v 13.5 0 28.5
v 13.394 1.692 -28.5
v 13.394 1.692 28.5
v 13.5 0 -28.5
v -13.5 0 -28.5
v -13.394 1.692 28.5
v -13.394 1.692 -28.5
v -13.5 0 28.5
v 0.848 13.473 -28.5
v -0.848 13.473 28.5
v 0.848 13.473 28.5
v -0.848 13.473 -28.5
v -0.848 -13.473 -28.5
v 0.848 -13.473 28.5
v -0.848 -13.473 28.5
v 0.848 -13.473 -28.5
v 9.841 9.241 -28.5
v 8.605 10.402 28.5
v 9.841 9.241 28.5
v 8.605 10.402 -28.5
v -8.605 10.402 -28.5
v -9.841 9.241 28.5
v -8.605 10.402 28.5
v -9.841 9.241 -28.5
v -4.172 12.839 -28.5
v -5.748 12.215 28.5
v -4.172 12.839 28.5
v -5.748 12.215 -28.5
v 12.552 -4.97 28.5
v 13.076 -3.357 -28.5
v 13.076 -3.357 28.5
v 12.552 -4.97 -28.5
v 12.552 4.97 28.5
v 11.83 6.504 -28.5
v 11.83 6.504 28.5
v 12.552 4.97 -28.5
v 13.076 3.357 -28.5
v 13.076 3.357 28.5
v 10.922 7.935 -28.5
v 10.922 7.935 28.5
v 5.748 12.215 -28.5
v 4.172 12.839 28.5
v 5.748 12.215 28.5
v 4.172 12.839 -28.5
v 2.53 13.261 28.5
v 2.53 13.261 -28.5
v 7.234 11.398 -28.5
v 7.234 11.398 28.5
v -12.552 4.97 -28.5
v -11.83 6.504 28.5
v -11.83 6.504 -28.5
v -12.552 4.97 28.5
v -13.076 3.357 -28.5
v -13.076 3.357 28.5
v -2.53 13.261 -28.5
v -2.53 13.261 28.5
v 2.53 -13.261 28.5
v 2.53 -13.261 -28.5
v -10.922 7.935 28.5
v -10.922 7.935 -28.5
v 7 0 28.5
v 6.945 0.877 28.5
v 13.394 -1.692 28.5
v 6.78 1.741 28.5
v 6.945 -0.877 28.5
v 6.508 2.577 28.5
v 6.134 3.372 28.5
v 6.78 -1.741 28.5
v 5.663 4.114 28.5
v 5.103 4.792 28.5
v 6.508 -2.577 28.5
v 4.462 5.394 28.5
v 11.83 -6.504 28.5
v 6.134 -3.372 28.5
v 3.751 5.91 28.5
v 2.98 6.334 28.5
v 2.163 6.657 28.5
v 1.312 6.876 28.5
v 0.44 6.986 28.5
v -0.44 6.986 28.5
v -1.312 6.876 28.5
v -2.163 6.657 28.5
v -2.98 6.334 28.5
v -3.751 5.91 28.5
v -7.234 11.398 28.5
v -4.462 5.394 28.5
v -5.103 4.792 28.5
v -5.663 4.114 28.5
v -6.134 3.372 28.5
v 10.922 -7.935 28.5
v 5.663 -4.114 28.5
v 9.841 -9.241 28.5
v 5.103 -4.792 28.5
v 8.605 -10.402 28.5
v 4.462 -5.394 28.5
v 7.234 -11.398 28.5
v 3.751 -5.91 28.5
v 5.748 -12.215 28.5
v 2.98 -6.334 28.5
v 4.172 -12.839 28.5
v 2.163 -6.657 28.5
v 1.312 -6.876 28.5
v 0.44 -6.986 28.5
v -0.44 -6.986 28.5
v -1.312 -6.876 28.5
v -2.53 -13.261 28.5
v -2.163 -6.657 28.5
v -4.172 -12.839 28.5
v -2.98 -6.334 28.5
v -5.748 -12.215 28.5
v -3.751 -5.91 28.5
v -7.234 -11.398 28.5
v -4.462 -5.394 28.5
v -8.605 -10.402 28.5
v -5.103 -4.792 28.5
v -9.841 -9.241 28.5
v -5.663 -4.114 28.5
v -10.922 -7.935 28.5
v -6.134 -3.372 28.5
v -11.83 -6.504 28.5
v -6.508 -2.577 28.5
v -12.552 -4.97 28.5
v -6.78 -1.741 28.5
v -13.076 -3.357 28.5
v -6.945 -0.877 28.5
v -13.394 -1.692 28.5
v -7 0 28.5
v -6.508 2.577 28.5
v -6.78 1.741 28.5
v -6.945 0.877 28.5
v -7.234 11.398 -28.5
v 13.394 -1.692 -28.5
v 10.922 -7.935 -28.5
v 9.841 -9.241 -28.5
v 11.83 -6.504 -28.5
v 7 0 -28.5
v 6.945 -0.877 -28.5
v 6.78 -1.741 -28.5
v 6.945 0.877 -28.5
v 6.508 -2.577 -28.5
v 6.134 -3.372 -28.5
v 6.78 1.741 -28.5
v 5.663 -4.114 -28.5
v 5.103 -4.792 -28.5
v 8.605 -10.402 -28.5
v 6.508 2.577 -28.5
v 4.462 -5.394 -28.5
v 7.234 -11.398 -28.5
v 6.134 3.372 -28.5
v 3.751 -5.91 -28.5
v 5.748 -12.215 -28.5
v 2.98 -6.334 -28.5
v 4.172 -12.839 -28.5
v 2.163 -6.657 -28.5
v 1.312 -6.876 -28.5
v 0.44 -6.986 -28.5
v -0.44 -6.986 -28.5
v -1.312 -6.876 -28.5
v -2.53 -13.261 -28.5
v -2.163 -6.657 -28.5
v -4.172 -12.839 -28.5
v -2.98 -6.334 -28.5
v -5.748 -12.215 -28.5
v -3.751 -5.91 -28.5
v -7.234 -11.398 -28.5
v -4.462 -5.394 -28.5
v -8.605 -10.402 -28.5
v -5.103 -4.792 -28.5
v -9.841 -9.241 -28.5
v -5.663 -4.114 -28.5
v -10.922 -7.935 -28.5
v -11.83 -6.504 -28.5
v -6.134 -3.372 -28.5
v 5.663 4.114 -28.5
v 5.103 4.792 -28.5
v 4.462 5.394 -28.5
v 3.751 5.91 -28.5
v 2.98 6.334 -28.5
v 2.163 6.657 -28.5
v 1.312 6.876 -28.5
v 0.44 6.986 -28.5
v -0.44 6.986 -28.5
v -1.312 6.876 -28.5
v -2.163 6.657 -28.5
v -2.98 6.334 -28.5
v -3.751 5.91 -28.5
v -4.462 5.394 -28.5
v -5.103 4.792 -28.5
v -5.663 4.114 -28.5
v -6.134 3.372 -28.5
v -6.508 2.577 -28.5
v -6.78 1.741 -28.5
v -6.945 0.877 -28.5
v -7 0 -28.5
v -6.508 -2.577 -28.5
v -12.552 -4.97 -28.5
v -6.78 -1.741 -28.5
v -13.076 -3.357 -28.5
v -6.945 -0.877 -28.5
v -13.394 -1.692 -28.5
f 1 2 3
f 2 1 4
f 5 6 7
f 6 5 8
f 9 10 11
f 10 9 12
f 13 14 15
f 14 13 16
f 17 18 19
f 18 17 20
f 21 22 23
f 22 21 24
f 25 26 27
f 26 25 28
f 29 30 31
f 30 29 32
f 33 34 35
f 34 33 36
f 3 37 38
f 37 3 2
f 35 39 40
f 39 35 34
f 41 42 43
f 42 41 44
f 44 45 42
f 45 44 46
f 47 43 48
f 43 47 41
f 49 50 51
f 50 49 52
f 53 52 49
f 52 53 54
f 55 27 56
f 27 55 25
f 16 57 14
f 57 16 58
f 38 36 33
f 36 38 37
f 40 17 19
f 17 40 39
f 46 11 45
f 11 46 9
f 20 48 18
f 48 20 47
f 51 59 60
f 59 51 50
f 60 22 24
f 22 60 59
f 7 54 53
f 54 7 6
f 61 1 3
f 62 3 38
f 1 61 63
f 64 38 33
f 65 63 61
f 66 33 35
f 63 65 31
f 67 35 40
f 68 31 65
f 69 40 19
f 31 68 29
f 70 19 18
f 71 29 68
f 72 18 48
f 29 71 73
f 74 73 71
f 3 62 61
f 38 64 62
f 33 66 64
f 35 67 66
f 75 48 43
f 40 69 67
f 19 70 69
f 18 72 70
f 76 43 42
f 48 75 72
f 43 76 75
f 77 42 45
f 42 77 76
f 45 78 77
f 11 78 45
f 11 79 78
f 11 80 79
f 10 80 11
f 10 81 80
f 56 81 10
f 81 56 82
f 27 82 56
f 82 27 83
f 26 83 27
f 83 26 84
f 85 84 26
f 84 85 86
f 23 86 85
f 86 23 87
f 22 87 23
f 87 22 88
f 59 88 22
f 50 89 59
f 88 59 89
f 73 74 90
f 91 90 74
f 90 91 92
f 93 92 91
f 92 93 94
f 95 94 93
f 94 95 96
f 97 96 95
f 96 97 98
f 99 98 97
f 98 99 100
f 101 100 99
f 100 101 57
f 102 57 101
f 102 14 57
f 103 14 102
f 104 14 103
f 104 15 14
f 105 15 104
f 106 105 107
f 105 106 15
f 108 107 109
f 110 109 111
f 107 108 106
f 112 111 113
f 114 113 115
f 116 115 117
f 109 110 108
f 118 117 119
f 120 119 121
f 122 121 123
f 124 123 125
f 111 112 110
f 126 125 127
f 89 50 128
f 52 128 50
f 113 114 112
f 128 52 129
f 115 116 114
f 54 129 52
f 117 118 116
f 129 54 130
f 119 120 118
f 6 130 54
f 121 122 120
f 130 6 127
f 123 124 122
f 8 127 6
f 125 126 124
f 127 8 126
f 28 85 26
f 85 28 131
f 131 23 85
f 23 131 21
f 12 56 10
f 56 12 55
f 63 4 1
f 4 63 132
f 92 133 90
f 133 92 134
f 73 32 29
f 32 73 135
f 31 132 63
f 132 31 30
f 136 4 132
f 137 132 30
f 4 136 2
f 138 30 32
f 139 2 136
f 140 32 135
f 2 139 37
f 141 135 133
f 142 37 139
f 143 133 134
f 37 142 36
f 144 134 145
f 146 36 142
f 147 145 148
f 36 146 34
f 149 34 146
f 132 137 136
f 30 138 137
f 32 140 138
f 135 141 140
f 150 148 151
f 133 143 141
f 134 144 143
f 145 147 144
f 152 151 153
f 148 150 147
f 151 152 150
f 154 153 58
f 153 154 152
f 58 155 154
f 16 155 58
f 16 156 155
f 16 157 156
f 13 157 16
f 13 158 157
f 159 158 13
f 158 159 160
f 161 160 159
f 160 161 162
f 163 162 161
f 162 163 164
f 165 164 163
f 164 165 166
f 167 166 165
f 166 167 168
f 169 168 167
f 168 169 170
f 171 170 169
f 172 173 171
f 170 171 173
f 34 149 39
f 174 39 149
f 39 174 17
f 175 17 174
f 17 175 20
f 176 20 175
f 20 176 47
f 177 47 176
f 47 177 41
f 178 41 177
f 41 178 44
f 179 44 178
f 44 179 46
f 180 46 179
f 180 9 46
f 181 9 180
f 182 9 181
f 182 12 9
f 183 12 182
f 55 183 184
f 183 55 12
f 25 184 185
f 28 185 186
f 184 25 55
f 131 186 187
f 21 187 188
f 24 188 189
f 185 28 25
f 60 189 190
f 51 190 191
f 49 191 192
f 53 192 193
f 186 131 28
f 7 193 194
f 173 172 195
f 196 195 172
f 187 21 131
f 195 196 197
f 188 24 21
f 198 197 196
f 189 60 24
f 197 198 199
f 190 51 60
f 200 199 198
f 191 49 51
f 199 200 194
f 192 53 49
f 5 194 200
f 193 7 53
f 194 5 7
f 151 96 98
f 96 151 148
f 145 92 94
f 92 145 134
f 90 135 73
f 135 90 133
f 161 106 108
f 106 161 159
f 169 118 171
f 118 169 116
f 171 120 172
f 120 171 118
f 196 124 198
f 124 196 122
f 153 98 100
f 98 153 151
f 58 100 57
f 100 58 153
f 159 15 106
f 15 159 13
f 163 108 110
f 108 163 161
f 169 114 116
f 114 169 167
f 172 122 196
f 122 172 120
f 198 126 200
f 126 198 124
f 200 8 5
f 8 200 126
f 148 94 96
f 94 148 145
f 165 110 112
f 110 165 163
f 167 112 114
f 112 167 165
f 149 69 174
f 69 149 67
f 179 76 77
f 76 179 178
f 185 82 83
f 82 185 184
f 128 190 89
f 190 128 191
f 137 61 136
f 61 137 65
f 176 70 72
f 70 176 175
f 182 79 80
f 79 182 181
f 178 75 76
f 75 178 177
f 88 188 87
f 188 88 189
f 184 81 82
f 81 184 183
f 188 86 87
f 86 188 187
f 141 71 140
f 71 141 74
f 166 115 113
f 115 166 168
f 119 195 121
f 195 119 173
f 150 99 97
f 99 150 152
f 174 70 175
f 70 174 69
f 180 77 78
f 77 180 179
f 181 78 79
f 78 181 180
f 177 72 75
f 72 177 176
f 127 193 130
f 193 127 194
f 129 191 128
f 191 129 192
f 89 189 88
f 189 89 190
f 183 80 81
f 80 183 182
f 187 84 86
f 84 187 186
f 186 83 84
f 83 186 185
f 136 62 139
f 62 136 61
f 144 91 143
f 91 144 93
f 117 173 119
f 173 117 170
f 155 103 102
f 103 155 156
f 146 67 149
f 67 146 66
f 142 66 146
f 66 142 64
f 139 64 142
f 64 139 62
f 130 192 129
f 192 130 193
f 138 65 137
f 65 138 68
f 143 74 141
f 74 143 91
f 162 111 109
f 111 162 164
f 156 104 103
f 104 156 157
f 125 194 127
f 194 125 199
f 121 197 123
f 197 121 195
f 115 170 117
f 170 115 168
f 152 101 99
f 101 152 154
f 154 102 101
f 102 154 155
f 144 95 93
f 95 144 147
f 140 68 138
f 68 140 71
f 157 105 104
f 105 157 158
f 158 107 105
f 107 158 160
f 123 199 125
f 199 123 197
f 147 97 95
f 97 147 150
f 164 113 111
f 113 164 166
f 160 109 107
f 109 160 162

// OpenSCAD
$fn = 50;


difference() {
	union() {
		translate(v = [0, 0, -28.5000000000]) {
			cylinder(h = 57, r = 13.5000000000);
		}
	}
	union() {
		translate(v = [0, 0, -100.0000000000]) {
			cylinder(h = 200, r = 7);
		}
	}
}
